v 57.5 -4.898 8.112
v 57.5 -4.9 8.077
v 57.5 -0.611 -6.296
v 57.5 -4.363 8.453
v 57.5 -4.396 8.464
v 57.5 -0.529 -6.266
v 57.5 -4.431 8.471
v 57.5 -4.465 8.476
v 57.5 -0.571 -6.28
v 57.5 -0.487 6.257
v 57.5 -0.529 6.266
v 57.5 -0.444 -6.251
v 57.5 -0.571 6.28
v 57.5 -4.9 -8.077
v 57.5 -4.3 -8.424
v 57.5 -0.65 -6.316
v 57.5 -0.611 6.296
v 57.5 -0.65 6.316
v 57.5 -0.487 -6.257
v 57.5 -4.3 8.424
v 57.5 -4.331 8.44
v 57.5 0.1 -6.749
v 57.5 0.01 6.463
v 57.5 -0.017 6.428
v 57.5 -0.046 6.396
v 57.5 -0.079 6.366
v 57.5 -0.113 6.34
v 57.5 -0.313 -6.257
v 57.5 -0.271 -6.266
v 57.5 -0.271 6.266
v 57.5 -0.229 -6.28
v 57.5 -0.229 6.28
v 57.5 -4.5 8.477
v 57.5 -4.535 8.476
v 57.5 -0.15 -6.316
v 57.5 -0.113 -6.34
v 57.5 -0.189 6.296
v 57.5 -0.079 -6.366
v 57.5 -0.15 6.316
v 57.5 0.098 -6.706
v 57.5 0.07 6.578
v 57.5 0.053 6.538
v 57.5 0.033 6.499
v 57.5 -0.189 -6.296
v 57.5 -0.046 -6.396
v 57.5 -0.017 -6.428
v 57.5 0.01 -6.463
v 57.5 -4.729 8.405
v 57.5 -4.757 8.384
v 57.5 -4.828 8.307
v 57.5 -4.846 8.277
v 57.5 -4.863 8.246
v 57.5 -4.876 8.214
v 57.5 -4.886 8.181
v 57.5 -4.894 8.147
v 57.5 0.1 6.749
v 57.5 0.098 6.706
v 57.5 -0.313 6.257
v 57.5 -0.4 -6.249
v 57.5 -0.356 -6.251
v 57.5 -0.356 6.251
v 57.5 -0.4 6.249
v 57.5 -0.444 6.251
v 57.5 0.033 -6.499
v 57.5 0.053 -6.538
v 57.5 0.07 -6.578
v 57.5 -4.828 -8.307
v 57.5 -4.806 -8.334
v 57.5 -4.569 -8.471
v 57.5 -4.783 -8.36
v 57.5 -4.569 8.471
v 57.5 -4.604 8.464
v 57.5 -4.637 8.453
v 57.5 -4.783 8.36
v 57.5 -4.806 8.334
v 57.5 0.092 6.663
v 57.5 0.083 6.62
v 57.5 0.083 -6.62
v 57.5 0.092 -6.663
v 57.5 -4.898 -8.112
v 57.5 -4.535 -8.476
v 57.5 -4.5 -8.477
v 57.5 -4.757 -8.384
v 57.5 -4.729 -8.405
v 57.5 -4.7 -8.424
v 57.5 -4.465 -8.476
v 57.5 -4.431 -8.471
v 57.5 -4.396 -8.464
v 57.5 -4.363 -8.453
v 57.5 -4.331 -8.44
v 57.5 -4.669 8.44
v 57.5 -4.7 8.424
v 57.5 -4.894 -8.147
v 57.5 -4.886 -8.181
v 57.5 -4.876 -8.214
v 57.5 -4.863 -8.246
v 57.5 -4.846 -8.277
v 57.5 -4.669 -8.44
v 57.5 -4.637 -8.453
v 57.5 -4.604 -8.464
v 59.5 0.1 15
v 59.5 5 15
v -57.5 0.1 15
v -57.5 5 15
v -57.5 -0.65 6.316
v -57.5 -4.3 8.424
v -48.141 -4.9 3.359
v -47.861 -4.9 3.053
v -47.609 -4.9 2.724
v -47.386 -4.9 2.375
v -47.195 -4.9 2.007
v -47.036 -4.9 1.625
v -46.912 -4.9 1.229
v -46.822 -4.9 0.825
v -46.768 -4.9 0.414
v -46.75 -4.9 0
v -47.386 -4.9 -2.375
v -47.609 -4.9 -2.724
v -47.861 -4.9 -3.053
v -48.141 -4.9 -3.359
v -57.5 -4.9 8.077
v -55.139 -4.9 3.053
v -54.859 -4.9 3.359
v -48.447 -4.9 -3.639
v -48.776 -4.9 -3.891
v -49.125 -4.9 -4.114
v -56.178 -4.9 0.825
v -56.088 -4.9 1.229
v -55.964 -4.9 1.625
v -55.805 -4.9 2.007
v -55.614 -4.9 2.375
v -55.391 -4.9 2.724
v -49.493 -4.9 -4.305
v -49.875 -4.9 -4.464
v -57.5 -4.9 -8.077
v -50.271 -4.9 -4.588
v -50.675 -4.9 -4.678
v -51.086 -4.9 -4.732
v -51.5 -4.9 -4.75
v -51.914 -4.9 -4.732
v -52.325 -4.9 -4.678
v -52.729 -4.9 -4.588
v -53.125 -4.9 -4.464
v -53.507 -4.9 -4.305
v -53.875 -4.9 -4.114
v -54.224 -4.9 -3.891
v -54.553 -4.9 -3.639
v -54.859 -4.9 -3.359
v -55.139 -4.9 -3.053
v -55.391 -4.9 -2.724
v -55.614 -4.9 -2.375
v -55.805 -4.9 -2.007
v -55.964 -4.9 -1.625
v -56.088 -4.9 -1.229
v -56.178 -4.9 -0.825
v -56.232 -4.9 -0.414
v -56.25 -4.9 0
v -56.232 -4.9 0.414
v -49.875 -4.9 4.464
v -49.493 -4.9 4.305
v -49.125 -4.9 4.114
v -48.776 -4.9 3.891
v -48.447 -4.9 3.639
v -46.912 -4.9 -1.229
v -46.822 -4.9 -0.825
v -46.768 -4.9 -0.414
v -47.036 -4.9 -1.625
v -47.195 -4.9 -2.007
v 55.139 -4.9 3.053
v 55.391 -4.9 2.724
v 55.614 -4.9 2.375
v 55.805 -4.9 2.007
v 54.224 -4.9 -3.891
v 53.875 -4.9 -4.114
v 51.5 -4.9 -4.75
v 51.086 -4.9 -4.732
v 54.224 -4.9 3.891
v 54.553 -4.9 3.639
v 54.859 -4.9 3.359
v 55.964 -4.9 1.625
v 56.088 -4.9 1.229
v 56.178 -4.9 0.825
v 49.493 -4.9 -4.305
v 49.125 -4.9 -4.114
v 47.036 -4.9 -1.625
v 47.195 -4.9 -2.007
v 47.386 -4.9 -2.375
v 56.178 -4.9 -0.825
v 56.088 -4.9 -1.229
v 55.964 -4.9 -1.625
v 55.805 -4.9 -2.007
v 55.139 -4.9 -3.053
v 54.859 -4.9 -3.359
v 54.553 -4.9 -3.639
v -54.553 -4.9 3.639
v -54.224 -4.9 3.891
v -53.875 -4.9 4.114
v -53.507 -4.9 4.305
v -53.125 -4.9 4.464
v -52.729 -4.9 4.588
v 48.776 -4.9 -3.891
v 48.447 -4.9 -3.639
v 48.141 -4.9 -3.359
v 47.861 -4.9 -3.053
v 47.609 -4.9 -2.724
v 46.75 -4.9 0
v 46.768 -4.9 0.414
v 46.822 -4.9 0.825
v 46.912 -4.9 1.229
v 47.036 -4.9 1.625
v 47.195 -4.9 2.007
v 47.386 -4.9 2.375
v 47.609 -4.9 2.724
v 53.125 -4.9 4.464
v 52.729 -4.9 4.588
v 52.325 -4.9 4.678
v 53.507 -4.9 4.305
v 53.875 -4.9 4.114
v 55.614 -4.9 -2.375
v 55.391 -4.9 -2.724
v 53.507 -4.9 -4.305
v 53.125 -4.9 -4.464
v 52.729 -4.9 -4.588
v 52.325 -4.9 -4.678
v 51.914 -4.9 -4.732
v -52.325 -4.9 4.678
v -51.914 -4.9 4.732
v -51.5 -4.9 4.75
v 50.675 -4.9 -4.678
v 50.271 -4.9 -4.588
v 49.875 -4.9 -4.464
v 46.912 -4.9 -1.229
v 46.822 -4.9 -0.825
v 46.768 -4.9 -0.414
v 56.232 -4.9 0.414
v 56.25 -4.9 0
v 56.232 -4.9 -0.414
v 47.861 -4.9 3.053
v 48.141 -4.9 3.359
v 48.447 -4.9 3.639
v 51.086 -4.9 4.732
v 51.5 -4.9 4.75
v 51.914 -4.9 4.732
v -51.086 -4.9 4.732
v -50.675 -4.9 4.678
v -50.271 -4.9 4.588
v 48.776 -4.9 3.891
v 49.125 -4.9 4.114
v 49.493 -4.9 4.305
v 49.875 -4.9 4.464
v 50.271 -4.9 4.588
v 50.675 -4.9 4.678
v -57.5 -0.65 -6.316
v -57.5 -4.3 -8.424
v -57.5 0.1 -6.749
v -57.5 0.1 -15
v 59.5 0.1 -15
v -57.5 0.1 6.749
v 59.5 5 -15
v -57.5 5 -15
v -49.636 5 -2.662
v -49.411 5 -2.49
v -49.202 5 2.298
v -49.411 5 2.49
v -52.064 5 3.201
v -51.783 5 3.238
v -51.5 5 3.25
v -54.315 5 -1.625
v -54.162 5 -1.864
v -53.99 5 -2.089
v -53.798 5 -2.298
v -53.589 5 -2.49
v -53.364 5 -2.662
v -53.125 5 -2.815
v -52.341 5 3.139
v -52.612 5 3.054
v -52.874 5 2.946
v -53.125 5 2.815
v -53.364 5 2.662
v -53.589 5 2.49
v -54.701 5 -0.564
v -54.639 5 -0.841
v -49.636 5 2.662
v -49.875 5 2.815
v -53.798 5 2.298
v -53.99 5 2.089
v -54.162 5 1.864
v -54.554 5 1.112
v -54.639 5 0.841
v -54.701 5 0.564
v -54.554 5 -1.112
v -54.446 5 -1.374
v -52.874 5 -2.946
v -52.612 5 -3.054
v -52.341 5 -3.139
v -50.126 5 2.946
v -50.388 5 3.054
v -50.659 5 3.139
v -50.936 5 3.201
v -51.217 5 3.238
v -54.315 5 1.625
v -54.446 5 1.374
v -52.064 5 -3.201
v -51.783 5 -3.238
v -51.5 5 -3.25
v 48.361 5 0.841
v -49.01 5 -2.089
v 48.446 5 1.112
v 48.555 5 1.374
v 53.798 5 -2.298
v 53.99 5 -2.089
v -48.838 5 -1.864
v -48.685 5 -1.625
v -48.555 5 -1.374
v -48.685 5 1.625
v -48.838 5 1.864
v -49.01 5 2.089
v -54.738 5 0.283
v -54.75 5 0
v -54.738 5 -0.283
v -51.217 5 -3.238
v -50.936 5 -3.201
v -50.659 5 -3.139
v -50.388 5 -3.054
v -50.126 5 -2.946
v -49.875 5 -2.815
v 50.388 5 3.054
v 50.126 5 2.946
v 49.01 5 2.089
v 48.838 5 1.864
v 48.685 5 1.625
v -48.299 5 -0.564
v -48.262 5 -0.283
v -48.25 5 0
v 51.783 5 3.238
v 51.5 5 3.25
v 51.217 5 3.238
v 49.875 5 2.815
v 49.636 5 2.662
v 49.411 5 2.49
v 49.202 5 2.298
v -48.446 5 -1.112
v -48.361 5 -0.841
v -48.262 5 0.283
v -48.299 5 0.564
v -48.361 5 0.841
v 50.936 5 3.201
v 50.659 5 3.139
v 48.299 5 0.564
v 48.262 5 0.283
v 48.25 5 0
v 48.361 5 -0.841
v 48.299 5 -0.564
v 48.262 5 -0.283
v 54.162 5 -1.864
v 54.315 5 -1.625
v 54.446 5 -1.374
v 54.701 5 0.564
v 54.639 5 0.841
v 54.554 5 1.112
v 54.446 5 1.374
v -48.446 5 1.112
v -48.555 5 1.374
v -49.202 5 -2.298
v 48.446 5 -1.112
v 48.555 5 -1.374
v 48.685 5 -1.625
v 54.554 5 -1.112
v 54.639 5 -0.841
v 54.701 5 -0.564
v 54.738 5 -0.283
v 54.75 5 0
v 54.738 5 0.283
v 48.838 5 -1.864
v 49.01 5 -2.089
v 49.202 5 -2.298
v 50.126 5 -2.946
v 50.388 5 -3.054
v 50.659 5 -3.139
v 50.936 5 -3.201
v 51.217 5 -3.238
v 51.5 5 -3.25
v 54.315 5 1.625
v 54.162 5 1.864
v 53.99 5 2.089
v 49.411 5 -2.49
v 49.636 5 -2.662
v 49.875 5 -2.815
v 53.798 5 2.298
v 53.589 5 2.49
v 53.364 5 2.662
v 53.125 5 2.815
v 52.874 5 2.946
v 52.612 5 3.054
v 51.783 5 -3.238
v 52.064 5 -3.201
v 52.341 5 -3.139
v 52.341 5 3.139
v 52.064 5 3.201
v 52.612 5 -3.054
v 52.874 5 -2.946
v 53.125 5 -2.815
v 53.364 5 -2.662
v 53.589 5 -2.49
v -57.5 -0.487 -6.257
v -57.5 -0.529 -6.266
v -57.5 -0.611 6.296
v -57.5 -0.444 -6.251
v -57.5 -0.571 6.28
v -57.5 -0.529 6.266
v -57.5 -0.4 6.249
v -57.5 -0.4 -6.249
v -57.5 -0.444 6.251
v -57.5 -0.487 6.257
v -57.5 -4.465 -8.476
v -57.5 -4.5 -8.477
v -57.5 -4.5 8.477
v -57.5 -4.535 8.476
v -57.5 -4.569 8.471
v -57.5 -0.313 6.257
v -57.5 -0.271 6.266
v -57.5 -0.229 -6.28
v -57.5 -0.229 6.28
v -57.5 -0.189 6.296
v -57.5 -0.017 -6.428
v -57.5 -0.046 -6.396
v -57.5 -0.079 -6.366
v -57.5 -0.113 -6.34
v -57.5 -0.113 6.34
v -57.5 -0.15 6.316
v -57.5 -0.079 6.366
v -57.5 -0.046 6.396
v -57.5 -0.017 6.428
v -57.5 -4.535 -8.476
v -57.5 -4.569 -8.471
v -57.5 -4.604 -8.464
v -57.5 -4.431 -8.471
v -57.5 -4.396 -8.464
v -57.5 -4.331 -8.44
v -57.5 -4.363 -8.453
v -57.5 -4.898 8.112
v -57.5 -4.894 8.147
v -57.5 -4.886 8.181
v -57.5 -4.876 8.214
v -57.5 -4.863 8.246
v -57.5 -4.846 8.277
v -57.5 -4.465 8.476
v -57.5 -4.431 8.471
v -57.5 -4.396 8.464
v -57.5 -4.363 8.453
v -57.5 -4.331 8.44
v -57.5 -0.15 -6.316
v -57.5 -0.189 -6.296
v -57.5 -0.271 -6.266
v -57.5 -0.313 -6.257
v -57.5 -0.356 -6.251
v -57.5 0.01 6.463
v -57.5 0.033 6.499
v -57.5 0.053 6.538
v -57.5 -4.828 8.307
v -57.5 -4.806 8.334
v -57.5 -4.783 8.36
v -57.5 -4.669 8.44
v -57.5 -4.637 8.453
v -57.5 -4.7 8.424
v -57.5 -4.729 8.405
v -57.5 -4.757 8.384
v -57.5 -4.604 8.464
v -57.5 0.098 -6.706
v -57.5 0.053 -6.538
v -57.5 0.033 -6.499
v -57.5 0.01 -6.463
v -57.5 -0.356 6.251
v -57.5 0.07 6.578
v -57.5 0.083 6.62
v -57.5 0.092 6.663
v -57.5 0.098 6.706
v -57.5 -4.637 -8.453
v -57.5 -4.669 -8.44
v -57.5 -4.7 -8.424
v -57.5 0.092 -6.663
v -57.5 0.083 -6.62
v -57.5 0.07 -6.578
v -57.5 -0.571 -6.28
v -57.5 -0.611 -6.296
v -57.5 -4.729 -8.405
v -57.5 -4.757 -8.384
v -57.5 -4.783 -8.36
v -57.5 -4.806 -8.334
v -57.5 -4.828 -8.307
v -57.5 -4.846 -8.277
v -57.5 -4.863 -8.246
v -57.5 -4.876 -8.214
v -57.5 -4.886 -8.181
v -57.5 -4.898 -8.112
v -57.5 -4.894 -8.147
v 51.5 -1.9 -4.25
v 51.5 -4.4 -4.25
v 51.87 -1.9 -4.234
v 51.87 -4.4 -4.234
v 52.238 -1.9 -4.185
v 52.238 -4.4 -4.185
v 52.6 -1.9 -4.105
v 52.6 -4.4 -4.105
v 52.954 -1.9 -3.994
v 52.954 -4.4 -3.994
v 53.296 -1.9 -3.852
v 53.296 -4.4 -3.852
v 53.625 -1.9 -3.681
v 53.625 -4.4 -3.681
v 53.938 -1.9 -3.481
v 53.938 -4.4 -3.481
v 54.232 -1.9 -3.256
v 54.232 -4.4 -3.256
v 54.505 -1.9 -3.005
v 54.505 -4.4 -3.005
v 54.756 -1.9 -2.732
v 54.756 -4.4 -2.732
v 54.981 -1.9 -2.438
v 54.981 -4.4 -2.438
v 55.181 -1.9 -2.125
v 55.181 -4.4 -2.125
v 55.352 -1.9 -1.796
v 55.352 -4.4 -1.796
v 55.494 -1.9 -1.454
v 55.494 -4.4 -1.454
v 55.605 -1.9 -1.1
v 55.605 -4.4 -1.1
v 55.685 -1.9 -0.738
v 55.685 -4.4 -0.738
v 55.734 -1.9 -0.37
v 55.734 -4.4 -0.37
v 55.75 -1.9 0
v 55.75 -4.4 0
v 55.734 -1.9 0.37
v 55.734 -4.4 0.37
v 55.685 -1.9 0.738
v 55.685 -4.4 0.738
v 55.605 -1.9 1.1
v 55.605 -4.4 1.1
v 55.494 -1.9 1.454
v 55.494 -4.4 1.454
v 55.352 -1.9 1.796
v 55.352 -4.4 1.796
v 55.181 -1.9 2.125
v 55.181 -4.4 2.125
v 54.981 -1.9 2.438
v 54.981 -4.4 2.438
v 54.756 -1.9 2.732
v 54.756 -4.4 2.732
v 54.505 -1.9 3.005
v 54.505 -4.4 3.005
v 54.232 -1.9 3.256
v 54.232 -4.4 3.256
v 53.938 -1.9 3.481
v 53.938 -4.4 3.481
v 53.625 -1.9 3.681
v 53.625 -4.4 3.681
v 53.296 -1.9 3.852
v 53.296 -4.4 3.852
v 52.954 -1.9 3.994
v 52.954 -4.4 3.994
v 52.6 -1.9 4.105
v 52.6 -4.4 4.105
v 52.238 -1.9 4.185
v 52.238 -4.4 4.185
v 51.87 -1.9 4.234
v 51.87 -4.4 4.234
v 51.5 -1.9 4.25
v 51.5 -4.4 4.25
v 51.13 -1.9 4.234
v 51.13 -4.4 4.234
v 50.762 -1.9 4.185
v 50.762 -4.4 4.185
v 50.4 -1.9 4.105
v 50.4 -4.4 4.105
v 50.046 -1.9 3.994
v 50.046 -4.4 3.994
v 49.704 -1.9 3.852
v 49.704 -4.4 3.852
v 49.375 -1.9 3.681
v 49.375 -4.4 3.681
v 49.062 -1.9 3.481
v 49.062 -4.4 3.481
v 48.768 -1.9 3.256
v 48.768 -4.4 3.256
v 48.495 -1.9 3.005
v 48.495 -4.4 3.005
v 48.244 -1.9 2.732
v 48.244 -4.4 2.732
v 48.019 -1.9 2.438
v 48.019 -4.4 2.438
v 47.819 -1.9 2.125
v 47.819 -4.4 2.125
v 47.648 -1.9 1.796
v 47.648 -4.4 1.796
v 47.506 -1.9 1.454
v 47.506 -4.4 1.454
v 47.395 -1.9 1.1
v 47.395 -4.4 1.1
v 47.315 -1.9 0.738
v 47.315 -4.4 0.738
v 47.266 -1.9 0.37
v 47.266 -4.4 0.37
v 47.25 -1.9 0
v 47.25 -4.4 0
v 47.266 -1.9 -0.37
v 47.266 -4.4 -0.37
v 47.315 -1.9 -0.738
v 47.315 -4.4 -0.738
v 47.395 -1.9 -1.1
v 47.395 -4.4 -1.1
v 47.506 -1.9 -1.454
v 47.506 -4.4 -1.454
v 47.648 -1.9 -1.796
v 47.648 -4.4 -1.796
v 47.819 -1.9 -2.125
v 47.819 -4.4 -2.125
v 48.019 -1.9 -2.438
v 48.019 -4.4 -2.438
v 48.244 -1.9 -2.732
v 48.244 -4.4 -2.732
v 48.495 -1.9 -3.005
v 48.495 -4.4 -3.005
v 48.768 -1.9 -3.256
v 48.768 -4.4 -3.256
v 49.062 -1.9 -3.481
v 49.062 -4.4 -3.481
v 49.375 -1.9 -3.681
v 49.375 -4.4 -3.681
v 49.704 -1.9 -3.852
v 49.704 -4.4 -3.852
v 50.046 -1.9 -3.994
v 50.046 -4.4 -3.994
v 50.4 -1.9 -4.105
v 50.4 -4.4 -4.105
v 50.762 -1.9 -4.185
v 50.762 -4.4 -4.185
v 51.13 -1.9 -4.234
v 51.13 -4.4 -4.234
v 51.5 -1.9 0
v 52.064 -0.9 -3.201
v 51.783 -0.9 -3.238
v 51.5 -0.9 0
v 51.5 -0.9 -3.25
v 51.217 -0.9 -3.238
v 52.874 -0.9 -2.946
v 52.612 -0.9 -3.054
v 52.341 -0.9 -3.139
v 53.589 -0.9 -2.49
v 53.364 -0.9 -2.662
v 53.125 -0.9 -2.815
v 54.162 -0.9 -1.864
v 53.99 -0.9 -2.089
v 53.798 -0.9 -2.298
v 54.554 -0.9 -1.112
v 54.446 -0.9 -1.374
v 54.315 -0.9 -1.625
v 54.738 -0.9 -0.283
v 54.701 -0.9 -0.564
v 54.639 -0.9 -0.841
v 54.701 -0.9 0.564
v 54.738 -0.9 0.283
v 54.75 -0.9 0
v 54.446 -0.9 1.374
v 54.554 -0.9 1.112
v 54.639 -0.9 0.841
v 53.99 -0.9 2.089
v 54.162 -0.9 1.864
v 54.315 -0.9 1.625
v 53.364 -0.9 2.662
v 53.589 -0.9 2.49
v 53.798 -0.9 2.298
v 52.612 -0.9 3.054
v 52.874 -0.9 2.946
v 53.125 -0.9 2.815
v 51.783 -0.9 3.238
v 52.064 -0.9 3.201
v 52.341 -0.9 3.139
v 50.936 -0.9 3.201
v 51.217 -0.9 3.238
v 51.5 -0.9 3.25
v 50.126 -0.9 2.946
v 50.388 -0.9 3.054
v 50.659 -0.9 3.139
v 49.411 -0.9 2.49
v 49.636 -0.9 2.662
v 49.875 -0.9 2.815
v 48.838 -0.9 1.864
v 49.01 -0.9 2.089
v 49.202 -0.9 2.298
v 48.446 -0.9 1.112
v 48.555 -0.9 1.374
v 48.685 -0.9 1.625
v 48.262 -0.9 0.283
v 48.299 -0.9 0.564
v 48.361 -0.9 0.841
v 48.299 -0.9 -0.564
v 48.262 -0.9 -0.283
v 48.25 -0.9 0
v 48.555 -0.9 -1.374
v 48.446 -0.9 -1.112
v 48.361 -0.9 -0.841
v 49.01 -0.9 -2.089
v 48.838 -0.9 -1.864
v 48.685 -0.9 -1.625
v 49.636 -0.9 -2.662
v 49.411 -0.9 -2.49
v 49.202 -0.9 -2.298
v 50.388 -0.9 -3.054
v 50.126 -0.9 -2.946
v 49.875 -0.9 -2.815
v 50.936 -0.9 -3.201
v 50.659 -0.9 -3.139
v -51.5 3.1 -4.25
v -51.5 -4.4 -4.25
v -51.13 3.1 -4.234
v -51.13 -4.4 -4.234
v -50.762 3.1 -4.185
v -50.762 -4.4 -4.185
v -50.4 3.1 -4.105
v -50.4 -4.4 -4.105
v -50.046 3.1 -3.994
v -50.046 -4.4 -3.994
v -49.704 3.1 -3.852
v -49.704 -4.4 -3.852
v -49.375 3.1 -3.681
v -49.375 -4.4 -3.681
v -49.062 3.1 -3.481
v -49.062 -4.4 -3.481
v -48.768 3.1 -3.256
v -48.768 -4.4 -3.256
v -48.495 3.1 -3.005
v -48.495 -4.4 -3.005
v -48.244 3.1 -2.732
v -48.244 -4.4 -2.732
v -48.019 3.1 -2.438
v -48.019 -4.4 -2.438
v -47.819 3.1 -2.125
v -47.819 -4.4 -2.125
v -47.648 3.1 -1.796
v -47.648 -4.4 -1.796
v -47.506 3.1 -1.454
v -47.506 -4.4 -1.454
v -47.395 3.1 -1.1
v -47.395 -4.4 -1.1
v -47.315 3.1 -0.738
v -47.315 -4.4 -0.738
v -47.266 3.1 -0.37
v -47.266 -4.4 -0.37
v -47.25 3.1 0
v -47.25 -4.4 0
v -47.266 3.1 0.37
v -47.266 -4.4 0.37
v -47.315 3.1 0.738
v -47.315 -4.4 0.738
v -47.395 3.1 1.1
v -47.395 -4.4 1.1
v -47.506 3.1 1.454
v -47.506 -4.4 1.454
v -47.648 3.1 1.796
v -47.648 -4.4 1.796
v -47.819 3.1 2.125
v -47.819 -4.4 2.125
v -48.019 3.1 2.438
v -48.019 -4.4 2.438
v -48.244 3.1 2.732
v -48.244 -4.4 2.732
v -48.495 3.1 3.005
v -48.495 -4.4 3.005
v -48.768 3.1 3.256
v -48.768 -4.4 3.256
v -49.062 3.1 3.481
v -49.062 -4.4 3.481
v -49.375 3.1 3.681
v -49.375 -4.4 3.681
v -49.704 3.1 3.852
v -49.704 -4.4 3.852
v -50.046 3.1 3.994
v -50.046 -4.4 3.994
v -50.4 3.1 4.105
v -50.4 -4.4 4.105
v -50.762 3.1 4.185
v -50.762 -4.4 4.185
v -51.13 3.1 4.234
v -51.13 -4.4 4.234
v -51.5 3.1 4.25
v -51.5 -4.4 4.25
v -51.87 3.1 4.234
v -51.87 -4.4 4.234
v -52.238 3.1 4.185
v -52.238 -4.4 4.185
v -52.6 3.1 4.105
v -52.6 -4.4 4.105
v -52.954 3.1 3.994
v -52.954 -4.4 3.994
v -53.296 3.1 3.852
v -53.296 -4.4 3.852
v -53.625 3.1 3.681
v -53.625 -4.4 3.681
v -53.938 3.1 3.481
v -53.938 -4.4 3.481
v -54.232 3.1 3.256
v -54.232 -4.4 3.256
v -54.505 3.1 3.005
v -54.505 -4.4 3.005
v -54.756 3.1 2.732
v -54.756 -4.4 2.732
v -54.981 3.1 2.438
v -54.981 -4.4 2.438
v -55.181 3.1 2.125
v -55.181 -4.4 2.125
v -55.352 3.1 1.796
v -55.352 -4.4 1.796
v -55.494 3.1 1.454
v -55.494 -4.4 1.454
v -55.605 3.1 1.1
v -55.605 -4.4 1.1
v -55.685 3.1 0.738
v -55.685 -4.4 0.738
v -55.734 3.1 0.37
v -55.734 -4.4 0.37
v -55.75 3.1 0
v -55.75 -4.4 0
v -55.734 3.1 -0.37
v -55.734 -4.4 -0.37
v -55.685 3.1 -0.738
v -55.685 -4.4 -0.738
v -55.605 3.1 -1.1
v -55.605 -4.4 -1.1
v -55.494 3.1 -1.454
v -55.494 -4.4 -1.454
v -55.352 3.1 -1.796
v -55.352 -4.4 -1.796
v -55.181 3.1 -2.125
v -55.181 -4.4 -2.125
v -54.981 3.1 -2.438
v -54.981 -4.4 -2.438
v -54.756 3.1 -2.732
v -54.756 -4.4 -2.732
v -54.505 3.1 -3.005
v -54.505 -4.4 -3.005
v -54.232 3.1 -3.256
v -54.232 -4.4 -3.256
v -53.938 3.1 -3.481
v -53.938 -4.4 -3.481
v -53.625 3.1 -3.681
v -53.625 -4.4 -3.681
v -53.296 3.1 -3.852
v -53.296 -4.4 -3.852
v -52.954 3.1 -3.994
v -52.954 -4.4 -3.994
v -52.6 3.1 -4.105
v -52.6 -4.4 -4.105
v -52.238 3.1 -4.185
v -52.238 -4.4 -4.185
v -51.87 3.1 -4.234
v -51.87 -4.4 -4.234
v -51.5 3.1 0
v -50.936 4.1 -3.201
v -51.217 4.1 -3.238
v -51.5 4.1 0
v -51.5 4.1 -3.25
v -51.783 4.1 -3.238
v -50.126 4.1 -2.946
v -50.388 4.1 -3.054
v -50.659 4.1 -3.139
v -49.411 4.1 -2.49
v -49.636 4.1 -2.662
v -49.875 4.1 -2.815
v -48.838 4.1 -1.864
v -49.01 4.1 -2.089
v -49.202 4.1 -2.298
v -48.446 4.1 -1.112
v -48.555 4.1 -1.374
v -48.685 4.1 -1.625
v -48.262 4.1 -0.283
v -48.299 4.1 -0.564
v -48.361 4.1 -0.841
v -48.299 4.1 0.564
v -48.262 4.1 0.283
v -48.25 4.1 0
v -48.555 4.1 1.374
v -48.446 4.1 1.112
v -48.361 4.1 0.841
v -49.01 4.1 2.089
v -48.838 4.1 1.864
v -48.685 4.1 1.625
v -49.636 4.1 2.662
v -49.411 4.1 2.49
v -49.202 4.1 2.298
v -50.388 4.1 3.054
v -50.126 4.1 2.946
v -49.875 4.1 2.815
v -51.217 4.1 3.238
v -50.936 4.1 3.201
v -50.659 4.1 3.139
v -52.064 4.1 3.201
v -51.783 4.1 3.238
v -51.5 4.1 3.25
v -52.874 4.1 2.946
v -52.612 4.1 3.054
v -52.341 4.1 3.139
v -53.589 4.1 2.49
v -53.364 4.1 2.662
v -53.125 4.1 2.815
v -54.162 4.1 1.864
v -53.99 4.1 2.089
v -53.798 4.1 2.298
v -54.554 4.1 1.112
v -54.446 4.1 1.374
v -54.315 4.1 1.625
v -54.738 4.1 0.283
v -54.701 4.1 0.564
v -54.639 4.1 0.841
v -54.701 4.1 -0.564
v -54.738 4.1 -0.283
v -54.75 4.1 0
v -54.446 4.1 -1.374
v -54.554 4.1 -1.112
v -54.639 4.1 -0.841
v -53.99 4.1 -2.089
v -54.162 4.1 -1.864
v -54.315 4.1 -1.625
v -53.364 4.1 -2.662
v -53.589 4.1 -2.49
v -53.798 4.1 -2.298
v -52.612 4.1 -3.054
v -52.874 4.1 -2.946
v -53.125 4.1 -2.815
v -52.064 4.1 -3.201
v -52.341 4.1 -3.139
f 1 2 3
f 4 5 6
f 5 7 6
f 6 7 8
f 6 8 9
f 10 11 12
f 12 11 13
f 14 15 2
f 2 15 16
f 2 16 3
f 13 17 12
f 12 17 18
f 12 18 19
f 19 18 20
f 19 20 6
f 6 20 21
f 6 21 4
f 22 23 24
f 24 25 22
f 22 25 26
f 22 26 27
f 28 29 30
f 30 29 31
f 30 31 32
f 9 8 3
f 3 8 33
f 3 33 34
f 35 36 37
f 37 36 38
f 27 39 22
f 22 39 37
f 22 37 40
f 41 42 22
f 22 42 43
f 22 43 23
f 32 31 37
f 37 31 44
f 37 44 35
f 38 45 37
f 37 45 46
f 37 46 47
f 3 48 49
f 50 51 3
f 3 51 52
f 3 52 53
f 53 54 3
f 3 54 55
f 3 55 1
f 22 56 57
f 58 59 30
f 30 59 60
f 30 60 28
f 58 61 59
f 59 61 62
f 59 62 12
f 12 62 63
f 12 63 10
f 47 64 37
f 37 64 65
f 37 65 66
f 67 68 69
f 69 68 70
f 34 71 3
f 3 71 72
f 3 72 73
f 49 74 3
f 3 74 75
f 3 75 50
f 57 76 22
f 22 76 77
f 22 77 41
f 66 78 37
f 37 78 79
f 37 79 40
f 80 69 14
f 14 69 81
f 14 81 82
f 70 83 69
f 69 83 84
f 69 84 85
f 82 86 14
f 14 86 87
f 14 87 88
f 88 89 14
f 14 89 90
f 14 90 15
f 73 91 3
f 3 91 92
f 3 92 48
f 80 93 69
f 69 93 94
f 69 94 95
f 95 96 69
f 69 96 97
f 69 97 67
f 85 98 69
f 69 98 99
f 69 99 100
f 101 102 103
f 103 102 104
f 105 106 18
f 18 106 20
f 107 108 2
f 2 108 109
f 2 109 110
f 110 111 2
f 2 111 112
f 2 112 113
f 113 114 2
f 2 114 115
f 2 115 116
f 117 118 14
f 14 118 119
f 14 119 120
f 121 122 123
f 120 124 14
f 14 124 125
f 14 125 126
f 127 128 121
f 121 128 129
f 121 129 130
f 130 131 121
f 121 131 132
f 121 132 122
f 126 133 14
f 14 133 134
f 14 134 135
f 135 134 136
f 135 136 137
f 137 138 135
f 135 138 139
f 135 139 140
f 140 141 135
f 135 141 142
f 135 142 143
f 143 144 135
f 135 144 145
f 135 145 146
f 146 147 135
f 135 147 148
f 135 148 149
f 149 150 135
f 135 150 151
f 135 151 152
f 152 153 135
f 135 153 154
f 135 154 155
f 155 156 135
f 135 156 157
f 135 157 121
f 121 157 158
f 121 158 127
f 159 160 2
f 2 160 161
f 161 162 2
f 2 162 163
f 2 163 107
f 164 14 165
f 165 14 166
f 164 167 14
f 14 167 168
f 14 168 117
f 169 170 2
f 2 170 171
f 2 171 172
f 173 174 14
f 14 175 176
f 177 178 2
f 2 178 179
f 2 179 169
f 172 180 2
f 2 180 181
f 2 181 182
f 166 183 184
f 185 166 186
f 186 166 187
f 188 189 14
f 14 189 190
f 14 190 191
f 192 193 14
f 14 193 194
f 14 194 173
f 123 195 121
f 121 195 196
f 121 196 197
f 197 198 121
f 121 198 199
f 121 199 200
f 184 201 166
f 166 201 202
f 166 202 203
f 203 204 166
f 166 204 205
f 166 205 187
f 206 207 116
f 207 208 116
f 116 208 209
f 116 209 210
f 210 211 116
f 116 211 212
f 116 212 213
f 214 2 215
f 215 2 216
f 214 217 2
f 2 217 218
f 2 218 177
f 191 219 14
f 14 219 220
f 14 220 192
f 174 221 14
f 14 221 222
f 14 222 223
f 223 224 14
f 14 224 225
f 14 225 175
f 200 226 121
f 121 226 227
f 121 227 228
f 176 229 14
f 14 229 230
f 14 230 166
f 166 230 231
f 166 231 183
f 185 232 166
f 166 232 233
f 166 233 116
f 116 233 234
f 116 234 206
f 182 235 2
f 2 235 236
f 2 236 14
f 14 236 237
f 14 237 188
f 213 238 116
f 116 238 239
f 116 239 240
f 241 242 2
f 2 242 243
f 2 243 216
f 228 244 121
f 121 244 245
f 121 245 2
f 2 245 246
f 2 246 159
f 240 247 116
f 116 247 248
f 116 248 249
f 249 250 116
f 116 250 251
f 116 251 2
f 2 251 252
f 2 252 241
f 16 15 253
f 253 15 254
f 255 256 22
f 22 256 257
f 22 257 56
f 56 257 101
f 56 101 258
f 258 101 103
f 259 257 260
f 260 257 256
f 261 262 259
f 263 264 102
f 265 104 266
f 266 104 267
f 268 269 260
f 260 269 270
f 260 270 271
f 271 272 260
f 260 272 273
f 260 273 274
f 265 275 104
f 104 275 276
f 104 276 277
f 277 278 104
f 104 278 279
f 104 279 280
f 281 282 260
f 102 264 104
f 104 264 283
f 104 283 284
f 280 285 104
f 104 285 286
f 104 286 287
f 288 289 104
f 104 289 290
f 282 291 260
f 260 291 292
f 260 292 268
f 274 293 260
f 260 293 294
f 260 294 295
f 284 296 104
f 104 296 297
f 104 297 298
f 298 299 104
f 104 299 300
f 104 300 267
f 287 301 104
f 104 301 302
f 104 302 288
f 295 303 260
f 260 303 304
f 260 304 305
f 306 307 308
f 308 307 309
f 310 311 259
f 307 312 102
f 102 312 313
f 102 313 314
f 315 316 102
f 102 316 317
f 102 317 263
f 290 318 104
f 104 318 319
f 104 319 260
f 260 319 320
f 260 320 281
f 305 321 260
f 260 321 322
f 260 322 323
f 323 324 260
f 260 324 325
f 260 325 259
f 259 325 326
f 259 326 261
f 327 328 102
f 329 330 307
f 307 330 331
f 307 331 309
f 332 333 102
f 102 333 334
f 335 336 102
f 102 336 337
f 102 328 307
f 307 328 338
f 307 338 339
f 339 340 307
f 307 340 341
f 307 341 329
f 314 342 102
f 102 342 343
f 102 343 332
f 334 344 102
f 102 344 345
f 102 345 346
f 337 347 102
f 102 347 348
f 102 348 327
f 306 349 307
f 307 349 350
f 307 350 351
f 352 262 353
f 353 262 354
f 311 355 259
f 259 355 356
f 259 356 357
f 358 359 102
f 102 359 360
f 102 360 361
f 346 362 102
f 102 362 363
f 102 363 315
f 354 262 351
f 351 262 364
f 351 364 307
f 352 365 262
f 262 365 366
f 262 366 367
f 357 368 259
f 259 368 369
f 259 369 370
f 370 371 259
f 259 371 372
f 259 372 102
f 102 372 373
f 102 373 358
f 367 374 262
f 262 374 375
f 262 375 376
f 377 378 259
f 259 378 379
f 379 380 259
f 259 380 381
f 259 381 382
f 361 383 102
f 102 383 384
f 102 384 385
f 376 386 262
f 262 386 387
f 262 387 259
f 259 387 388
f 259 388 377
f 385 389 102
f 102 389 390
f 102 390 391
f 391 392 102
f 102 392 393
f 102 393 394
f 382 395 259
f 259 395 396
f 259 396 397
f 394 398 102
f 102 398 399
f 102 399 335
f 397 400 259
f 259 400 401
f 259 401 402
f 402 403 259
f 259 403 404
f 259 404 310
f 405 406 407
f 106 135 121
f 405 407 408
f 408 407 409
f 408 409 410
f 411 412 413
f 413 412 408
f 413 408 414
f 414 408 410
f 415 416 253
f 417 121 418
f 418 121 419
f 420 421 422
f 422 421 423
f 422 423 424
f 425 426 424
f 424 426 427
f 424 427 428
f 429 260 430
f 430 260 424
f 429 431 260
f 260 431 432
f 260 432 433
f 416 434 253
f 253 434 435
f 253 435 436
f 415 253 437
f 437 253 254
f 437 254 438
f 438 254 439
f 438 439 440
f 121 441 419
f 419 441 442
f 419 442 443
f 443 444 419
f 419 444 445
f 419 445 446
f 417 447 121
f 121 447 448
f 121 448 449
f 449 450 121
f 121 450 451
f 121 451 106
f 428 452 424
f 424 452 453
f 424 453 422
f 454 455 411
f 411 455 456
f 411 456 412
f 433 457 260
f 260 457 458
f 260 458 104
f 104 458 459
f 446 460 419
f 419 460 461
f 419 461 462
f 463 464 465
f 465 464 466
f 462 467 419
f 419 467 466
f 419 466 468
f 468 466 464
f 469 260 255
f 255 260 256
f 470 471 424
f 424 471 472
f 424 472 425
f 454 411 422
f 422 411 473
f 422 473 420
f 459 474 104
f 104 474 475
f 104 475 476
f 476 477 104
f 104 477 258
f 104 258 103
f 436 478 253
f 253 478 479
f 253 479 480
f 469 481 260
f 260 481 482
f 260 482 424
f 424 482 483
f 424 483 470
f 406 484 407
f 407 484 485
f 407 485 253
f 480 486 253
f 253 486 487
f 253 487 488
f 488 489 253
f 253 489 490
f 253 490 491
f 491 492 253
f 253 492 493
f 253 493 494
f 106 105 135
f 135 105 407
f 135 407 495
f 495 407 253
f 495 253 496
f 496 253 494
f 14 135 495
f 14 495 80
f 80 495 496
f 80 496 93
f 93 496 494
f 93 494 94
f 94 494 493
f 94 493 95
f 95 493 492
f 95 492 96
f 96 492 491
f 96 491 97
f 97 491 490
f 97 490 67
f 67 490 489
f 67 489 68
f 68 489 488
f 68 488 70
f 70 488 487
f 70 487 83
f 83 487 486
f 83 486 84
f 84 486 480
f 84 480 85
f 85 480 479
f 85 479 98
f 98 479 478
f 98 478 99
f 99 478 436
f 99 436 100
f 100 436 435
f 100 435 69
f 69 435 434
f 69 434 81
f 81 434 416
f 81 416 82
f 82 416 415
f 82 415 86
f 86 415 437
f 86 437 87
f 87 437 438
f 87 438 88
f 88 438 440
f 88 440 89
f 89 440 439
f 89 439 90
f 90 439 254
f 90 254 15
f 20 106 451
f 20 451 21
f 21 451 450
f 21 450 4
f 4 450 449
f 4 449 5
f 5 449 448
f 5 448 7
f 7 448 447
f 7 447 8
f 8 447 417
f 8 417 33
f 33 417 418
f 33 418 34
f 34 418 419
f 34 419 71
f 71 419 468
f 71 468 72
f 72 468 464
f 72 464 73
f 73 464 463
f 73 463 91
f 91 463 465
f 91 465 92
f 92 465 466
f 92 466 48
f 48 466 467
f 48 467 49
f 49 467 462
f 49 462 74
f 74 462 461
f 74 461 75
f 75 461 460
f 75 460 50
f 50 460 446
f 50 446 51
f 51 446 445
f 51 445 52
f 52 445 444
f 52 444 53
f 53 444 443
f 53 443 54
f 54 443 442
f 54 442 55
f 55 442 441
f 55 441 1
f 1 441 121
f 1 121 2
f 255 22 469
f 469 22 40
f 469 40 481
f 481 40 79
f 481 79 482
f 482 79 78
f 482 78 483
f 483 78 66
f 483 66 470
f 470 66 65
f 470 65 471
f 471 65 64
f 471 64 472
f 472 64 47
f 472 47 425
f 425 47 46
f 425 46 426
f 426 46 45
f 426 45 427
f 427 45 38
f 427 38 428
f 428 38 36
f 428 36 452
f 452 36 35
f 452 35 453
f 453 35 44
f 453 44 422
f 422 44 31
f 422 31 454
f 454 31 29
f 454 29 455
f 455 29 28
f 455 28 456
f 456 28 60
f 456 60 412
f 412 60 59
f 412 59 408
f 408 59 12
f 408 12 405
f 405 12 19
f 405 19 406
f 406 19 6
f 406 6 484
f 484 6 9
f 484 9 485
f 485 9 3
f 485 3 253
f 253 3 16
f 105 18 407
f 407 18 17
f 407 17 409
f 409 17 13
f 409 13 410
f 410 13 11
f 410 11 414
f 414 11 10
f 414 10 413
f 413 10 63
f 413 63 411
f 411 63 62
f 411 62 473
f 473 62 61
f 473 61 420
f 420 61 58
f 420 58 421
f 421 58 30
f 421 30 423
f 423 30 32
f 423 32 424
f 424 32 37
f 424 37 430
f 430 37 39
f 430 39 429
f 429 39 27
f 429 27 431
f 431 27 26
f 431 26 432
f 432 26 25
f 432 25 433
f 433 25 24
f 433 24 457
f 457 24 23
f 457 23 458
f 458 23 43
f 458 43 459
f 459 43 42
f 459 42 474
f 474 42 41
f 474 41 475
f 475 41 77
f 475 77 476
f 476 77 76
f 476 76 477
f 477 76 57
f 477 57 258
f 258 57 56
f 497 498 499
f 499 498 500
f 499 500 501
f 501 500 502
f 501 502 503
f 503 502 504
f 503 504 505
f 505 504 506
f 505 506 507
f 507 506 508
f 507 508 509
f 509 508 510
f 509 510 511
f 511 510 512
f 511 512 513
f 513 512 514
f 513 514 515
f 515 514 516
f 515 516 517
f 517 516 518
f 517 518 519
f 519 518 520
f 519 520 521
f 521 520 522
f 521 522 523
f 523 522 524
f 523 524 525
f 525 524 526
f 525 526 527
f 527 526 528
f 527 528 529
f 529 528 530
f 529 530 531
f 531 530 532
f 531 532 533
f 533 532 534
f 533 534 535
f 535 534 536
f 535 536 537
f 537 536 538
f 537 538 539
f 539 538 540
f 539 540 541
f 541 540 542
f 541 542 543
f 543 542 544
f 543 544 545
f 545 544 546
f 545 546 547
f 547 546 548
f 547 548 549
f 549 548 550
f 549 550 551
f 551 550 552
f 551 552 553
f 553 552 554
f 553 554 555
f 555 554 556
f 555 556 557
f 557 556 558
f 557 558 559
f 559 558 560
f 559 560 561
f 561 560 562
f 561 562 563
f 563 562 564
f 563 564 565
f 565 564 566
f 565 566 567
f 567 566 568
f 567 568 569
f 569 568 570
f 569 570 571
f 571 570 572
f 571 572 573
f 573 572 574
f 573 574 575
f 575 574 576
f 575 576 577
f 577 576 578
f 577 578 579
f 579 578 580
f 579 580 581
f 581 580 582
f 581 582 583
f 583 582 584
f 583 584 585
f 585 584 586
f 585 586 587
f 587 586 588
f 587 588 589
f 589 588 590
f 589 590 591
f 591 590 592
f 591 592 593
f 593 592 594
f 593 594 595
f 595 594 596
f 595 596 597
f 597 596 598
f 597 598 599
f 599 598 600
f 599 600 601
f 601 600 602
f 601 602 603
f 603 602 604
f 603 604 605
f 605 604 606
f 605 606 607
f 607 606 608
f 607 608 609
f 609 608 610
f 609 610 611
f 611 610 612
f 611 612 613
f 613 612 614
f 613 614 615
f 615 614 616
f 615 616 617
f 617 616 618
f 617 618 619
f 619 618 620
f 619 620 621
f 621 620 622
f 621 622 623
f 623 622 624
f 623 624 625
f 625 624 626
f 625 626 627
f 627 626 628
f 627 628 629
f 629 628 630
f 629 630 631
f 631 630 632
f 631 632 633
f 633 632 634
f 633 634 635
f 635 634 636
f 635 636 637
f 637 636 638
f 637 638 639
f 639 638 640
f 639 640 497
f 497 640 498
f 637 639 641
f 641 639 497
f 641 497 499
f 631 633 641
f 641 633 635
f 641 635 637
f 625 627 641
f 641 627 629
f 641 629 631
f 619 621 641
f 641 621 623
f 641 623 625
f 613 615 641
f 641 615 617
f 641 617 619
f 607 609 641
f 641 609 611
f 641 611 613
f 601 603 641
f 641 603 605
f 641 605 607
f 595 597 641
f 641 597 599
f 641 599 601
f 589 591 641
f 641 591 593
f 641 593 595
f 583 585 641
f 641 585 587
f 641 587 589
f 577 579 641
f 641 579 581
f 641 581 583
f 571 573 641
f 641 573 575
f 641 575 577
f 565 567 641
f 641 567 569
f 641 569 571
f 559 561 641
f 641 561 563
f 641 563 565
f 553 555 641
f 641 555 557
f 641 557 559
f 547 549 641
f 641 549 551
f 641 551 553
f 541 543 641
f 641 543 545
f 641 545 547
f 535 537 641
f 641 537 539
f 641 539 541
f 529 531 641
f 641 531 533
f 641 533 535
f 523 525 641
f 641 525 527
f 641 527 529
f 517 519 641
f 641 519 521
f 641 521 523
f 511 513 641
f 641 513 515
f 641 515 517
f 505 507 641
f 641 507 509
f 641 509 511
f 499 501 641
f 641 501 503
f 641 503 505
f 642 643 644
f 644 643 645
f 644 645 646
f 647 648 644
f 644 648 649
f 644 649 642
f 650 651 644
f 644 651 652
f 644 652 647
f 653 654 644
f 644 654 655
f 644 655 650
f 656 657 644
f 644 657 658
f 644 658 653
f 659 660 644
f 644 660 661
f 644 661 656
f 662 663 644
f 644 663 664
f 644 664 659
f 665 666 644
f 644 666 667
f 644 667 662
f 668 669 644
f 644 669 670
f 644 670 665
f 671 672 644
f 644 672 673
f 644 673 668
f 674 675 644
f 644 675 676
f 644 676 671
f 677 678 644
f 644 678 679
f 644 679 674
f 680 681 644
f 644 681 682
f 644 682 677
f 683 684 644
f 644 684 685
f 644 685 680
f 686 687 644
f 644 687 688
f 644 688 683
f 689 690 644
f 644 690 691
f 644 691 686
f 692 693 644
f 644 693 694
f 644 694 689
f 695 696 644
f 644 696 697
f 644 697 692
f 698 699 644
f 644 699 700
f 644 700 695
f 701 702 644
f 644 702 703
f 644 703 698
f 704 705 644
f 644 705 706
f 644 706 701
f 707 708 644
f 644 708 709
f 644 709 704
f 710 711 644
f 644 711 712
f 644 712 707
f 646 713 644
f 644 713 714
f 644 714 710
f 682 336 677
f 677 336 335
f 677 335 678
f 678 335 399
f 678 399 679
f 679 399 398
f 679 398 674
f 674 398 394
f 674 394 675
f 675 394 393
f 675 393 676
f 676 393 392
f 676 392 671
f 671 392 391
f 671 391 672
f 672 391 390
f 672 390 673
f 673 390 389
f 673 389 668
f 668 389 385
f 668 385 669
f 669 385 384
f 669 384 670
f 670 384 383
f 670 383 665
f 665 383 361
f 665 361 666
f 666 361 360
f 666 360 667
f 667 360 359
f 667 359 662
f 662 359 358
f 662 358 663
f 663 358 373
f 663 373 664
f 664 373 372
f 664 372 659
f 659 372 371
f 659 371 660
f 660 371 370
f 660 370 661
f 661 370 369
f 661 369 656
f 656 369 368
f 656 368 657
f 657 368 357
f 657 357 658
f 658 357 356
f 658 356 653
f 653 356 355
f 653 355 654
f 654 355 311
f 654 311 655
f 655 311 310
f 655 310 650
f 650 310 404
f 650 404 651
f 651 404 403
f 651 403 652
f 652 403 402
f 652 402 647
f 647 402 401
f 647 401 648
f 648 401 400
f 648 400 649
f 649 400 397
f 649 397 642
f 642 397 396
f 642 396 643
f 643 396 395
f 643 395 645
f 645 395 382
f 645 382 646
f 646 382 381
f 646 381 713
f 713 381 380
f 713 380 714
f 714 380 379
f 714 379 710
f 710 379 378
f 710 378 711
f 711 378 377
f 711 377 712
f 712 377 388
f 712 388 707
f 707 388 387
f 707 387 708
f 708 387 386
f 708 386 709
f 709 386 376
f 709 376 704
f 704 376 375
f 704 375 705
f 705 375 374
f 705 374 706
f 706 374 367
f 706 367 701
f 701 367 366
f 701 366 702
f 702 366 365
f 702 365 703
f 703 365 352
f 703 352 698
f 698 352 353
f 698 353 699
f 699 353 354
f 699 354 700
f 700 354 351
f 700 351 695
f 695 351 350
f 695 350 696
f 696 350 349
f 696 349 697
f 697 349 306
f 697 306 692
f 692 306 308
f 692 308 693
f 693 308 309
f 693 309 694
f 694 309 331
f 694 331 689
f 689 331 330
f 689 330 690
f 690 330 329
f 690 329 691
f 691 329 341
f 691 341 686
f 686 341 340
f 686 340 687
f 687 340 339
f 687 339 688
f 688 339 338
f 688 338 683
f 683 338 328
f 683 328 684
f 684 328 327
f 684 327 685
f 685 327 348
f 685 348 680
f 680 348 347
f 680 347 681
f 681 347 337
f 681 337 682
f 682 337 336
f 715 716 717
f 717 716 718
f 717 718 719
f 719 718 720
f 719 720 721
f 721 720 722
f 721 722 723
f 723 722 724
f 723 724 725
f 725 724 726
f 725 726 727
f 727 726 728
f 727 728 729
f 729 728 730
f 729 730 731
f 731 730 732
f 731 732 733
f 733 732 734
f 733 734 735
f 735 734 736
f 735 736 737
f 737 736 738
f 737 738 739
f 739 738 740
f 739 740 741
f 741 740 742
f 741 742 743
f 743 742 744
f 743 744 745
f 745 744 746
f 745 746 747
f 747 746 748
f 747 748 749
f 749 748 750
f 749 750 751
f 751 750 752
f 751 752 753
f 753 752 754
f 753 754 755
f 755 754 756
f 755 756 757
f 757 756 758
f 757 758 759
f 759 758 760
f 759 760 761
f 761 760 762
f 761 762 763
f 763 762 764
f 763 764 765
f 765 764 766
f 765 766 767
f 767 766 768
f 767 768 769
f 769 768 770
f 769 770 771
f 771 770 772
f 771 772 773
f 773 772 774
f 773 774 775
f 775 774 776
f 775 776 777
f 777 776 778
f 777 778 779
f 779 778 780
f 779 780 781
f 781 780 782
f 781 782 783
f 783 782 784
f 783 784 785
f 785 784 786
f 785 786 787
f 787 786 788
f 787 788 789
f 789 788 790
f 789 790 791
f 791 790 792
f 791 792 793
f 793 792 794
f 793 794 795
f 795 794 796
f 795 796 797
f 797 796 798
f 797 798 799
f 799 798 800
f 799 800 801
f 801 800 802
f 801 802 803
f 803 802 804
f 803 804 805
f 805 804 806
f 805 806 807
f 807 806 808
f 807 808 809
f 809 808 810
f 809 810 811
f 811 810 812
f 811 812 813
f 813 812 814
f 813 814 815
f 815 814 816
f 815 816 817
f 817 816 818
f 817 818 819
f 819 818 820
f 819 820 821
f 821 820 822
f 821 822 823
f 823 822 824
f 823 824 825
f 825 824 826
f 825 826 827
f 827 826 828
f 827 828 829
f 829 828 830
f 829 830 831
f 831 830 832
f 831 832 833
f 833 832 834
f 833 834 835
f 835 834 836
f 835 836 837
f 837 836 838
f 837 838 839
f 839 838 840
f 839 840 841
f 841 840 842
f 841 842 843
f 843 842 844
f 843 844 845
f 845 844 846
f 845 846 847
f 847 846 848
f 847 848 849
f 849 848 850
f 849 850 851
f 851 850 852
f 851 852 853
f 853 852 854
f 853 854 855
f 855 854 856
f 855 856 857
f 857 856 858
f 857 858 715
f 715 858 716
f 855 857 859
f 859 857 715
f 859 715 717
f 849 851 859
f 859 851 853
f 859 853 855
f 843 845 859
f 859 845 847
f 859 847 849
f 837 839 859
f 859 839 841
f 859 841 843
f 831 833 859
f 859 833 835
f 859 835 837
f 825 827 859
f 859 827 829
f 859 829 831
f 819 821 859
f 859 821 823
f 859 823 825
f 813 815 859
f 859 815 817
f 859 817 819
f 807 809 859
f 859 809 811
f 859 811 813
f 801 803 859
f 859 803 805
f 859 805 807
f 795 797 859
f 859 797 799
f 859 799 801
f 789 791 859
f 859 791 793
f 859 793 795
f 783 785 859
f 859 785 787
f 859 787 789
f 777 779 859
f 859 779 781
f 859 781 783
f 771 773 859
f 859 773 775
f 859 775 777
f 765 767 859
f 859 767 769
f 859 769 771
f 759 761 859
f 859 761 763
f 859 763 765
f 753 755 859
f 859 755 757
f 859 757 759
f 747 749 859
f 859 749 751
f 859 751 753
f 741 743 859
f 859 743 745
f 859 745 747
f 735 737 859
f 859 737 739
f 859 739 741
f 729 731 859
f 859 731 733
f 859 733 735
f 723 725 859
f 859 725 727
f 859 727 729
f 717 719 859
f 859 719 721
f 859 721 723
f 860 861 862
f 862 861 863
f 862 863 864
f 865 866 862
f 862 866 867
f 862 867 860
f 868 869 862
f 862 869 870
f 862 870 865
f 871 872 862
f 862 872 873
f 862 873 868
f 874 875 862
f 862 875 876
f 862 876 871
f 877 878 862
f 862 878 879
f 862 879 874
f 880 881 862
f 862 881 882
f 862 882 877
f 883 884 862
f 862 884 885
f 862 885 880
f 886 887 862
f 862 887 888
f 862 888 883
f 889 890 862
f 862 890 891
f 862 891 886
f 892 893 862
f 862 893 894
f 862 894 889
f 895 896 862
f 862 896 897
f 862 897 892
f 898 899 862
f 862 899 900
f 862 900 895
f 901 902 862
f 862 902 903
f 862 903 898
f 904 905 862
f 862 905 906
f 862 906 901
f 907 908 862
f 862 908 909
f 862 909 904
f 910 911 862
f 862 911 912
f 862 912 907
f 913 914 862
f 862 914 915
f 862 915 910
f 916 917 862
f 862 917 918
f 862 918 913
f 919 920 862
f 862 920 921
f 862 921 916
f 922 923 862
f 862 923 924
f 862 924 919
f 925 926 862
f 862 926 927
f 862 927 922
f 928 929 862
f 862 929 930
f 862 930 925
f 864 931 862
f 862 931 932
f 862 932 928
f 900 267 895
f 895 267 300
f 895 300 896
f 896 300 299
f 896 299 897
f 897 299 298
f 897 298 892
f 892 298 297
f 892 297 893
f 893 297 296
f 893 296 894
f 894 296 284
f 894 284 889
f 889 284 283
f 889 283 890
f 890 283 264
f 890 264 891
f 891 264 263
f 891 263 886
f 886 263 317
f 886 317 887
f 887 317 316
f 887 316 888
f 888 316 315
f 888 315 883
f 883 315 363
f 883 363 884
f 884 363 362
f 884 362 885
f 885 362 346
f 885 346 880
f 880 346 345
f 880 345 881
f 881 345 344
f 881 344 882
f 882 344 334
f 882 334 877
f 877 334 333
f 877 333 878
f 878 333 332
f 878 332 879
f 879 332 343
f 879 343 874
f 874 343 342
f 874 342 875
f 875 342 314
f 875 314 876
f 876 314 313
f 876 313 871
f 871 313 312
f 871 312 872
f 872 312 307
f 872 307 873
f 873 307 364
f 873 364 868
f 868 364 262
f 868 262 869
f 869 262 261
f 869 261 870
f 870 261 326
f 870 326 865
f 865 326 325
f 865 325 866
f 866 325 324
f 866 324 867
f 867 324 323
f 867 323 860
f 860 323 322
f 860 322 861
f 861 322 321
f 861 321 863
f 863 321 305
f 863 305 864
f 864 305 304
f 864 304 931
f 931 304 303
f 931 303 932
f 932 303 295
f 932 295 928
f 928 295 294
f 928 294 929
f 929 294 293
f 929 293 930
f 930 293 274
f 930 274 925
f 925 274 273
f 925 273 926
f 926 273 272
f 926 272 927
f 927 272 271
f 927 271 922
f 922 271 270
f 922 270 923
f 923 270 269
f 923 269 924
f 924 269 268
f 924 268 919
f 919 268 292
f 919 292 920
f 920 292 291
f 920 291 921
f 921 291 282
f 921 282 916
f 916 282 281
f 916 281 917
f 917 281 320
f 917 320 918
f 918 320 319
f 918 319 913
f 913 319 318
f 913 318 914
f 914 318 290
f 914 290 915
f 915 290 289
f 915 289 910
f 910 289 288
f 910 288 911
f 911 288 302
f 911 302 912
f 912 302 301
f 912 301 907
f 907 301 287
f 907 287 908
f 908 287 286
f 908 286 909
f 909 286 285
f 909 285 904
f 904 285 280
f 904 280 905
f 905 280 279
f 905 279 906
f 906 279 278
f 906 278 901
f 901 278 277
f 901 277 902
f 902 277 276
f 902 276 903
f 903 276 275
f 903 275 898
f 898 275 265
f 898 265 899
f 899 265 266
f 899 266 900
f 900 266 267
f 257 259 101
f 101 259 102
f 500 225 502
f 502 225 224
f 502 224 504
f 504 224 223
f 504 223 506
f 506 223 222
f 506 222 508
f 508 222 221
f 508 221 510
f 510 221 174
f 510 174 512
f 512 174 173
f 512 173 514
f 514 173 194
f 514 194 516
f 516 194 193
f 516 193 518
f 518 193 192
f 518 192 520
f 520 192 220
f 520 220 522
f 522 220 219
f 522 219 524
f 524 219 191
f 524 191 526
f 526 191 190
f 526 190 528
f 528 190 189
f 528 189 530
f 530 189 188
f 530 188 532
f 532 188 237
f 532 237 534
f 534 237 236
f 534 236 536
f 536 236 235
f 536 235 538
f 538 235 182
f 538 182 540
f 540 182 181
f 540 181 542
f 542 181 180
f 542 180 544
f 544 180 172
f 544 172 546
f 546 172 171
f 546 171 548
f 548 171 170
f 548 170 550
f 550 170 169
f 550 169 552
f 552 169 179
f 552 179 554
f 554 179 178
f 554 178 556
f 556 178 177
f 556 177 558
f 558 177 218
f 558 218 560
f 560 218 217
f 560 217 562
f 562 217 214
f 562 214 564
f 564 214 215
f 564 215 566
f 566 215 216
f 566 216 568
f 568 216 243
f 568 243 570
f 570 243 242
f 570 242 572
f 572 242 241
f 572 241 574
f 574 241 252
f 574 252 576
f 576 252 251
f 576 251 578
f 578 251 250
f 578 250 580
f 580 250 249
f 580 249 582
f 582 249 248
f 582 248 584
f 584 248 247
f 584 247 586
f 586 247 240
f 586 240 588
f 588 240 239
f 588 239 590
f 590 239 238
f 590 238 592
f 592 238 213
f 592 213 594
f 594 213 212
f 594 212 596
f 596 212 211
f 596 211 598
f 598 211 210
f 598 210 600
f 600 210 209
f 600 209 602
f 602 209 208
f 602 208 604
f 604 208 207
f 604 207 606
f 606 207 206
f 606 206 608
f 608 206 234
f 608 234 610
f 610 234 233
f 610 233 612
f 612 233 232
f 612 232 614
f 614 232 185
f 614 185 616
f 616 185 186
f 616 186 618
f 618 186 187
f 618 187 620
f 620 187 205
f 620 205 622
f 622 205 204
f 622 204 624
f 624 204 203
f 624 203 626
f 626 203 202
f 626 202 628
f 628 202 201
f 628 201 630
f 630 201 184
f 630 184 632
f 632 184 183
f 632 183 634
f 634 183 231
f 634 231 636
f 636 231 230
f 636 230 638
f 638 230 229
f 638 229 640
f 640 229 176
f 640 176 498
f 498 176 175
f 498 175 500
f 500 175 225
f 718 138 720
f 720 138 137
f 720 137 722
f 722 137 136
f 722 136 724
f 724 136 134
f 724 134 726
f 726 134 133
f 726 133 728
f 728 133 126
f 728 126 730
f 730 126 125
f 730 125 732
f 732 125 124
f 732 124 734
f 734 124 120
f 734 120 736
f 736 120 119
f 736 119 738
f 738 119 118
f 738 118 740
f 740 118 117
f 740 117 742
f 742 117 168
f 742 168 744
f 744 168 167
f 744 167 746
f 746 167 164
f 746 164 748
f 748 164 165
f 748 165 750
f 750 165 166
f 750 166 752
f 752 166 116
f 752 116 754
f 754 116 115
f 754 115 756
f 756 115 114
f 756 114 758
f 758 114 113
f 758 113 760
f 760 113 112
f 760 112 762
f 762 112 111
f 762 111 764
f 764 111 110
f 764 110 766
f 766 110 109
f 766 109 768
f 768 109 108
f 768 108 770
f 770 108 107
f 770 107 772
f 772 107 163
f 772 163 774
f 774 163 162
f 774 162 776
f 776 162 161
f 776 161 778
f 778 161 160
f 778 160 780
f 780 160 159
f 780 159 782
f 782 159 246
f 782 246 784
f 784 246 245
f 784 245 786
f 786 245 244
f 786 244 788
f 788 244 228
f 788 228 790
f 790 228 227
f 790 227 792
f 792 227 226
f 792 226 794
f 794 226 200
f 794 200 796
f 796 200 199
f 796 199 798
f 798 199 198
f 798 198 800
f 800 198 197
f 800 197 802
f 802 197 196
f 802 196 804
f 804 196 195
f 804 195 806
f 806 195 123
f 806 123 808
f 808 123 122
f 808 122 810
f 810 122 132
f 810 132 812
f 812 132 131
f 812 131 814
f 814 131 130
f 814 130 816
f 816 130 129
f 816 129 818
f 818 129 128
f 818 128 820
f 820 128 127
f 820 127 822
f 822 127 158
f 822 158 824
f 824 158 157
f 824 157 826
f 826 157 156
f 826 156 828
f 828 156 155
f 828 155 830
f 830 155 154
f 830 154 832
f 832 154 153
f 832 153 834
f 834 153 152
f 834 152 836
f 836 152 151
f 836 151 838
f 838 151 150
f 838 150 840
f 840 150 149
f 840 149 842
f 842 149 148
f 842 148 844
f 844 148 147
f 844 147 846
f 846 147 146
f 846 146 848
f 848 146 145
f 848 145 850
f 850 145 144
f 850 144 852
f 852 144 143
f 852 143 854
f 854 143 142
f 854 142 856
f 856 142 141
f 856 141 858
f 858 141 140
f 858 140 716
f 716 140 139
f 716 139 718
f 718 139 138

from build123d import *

# Parameters (mm, degrees)
BOSS_EXTRUDE2_DEPTH = 57.5
FILLET1_R           = 0.4
FILLET2_R           = 0.5
SKETCH5_R           = 4.25
CUT_EXTRUDE1_DEPTH  = 3
SKETCH6_R           = 3.25
CUT_EXTRUDE2_DEPTH  = 5.9
SKETCH7_R           = 4.25
CUT_EXTRUDE3_DEPTH  = 8
SKETCH8_R           = 3.25
CUT_EXTRUDE4_DEPTH  = 0.9
SKETCH9_W           = 30
SKETCH9_H           = 4.9
BOSS_EXTRUDE3_DEPTH = 2
CHAMFER1_SIZE       = 0.5


with BuildPart() as part:
    # Sketch4 → Boss-Extrude2 (new, symmetric)
    with BuildSketch(Plane(origin=(0, 0, 0), x_dir=(0, 0, -1), z_dir=(1, 0, 0))):
        Polygon((-15, 5), (15, 5), (15, 0.1), (5.883419246, 0.1), (8.770170592, -4.9), (-8.770170592, -4.9), (-5.883419246, 0.1), (-15, 0.1), align=None)
    extrude(amount=BOSS_EXTRUDE2_DEPTH, both=True)

    # Fillet1
    fillet1_edges = [part.edges().sort_by_distance(p)[0] for p in [
        (0, -4.9, -8.770170592),
        (0, -4.9, 8.770170592),
    ]]
    fillet(fillet1_edges, radius=FILLET1_R)

    # Fillet2
    fillet2_edges = [part.edges().sort_by_distance(p)[0] for p in [
        (0, 0.1, -5.883419246),
        (0, 0.1, 5.883419246),
    ]]
    fillet(fillet2_edges, radius=FILLET2_R)

    # Sketch5 → Cut-Extrude1 (cut)
    with BuildSketch(Plane.XZ.offset(4.9)):
        with Locations(Location((51.5, 0, 0), (0, 0, 270))):
            Circle(SKETCH5_R)
    extrude(amount=-CUT_EXTRUDE1_DEPTH, mode=Mode.SUBTRACT)

    # Sketch6 → Cut-Extrude2 (cut)
    with BuildSketch(Plane(origin=(0, 5, 0), x_dir=(1, 0, 0), z_dir=(0, 1, 0))):
        with Locations(Location((51.5, 0, 0), (0, 0, 270))):
            Circle(SKETCH6_R)
    extrude(amount=-CUT_EXTRUDE2_DEPTH, mode=Mode.SUBTRACT)

    # Sketch7 → Cut-Extrude3 (cut)
    with BuildSketch(Plane.XZ.offset(4.9)):
        with Locations(Location((-51.5, 0, 0), (0, 0, 270))):
            Circle(SKETCH7_R)
    extrude(amount=-CUT_EXTRUDE3_DEPTH, mode=Mode.SUBTRACT)

    # Sketch8 → Cut-Extrude4 (cut)
    with BuildSketch(Plane(origin=(0, 5, 0), x_dir=(1, 0, 0), z_dir=(0, 1, 0))):
        with Locations(Location((-51.5, 0, 0), (0, 0, 270))):
            Circle(SKETCH8_R)
    extrude(amount=-CUT_EXTRUDE4_DEPTH, mode=Mode.SUBTRACT)

    # Sketch9 → Boss-Extrude3 (add)
    with BuildSketch(Plane(origin=(57.5, 0, 0), x_dir=(0, 0, -1), z_dir=(1, 0, 0))):
        with Locations((0, 2.55)):
            Rectangle(SKETCH9_W, SKETCH9_H)
    extrude(amount=BOSS_EXTRUDE3_DEPTH)

    # Chamfer1
    chamfer1_edges = [part.edges().sort_by_distance(p)[0] for p in [
        (51.5, -4.9, 4.25),
        (-51.5, -4.9, 4.25),
    ]]
    chamfer(chamfer1_edges, length=CHAMFER1_SIZE)


solid = part.part
